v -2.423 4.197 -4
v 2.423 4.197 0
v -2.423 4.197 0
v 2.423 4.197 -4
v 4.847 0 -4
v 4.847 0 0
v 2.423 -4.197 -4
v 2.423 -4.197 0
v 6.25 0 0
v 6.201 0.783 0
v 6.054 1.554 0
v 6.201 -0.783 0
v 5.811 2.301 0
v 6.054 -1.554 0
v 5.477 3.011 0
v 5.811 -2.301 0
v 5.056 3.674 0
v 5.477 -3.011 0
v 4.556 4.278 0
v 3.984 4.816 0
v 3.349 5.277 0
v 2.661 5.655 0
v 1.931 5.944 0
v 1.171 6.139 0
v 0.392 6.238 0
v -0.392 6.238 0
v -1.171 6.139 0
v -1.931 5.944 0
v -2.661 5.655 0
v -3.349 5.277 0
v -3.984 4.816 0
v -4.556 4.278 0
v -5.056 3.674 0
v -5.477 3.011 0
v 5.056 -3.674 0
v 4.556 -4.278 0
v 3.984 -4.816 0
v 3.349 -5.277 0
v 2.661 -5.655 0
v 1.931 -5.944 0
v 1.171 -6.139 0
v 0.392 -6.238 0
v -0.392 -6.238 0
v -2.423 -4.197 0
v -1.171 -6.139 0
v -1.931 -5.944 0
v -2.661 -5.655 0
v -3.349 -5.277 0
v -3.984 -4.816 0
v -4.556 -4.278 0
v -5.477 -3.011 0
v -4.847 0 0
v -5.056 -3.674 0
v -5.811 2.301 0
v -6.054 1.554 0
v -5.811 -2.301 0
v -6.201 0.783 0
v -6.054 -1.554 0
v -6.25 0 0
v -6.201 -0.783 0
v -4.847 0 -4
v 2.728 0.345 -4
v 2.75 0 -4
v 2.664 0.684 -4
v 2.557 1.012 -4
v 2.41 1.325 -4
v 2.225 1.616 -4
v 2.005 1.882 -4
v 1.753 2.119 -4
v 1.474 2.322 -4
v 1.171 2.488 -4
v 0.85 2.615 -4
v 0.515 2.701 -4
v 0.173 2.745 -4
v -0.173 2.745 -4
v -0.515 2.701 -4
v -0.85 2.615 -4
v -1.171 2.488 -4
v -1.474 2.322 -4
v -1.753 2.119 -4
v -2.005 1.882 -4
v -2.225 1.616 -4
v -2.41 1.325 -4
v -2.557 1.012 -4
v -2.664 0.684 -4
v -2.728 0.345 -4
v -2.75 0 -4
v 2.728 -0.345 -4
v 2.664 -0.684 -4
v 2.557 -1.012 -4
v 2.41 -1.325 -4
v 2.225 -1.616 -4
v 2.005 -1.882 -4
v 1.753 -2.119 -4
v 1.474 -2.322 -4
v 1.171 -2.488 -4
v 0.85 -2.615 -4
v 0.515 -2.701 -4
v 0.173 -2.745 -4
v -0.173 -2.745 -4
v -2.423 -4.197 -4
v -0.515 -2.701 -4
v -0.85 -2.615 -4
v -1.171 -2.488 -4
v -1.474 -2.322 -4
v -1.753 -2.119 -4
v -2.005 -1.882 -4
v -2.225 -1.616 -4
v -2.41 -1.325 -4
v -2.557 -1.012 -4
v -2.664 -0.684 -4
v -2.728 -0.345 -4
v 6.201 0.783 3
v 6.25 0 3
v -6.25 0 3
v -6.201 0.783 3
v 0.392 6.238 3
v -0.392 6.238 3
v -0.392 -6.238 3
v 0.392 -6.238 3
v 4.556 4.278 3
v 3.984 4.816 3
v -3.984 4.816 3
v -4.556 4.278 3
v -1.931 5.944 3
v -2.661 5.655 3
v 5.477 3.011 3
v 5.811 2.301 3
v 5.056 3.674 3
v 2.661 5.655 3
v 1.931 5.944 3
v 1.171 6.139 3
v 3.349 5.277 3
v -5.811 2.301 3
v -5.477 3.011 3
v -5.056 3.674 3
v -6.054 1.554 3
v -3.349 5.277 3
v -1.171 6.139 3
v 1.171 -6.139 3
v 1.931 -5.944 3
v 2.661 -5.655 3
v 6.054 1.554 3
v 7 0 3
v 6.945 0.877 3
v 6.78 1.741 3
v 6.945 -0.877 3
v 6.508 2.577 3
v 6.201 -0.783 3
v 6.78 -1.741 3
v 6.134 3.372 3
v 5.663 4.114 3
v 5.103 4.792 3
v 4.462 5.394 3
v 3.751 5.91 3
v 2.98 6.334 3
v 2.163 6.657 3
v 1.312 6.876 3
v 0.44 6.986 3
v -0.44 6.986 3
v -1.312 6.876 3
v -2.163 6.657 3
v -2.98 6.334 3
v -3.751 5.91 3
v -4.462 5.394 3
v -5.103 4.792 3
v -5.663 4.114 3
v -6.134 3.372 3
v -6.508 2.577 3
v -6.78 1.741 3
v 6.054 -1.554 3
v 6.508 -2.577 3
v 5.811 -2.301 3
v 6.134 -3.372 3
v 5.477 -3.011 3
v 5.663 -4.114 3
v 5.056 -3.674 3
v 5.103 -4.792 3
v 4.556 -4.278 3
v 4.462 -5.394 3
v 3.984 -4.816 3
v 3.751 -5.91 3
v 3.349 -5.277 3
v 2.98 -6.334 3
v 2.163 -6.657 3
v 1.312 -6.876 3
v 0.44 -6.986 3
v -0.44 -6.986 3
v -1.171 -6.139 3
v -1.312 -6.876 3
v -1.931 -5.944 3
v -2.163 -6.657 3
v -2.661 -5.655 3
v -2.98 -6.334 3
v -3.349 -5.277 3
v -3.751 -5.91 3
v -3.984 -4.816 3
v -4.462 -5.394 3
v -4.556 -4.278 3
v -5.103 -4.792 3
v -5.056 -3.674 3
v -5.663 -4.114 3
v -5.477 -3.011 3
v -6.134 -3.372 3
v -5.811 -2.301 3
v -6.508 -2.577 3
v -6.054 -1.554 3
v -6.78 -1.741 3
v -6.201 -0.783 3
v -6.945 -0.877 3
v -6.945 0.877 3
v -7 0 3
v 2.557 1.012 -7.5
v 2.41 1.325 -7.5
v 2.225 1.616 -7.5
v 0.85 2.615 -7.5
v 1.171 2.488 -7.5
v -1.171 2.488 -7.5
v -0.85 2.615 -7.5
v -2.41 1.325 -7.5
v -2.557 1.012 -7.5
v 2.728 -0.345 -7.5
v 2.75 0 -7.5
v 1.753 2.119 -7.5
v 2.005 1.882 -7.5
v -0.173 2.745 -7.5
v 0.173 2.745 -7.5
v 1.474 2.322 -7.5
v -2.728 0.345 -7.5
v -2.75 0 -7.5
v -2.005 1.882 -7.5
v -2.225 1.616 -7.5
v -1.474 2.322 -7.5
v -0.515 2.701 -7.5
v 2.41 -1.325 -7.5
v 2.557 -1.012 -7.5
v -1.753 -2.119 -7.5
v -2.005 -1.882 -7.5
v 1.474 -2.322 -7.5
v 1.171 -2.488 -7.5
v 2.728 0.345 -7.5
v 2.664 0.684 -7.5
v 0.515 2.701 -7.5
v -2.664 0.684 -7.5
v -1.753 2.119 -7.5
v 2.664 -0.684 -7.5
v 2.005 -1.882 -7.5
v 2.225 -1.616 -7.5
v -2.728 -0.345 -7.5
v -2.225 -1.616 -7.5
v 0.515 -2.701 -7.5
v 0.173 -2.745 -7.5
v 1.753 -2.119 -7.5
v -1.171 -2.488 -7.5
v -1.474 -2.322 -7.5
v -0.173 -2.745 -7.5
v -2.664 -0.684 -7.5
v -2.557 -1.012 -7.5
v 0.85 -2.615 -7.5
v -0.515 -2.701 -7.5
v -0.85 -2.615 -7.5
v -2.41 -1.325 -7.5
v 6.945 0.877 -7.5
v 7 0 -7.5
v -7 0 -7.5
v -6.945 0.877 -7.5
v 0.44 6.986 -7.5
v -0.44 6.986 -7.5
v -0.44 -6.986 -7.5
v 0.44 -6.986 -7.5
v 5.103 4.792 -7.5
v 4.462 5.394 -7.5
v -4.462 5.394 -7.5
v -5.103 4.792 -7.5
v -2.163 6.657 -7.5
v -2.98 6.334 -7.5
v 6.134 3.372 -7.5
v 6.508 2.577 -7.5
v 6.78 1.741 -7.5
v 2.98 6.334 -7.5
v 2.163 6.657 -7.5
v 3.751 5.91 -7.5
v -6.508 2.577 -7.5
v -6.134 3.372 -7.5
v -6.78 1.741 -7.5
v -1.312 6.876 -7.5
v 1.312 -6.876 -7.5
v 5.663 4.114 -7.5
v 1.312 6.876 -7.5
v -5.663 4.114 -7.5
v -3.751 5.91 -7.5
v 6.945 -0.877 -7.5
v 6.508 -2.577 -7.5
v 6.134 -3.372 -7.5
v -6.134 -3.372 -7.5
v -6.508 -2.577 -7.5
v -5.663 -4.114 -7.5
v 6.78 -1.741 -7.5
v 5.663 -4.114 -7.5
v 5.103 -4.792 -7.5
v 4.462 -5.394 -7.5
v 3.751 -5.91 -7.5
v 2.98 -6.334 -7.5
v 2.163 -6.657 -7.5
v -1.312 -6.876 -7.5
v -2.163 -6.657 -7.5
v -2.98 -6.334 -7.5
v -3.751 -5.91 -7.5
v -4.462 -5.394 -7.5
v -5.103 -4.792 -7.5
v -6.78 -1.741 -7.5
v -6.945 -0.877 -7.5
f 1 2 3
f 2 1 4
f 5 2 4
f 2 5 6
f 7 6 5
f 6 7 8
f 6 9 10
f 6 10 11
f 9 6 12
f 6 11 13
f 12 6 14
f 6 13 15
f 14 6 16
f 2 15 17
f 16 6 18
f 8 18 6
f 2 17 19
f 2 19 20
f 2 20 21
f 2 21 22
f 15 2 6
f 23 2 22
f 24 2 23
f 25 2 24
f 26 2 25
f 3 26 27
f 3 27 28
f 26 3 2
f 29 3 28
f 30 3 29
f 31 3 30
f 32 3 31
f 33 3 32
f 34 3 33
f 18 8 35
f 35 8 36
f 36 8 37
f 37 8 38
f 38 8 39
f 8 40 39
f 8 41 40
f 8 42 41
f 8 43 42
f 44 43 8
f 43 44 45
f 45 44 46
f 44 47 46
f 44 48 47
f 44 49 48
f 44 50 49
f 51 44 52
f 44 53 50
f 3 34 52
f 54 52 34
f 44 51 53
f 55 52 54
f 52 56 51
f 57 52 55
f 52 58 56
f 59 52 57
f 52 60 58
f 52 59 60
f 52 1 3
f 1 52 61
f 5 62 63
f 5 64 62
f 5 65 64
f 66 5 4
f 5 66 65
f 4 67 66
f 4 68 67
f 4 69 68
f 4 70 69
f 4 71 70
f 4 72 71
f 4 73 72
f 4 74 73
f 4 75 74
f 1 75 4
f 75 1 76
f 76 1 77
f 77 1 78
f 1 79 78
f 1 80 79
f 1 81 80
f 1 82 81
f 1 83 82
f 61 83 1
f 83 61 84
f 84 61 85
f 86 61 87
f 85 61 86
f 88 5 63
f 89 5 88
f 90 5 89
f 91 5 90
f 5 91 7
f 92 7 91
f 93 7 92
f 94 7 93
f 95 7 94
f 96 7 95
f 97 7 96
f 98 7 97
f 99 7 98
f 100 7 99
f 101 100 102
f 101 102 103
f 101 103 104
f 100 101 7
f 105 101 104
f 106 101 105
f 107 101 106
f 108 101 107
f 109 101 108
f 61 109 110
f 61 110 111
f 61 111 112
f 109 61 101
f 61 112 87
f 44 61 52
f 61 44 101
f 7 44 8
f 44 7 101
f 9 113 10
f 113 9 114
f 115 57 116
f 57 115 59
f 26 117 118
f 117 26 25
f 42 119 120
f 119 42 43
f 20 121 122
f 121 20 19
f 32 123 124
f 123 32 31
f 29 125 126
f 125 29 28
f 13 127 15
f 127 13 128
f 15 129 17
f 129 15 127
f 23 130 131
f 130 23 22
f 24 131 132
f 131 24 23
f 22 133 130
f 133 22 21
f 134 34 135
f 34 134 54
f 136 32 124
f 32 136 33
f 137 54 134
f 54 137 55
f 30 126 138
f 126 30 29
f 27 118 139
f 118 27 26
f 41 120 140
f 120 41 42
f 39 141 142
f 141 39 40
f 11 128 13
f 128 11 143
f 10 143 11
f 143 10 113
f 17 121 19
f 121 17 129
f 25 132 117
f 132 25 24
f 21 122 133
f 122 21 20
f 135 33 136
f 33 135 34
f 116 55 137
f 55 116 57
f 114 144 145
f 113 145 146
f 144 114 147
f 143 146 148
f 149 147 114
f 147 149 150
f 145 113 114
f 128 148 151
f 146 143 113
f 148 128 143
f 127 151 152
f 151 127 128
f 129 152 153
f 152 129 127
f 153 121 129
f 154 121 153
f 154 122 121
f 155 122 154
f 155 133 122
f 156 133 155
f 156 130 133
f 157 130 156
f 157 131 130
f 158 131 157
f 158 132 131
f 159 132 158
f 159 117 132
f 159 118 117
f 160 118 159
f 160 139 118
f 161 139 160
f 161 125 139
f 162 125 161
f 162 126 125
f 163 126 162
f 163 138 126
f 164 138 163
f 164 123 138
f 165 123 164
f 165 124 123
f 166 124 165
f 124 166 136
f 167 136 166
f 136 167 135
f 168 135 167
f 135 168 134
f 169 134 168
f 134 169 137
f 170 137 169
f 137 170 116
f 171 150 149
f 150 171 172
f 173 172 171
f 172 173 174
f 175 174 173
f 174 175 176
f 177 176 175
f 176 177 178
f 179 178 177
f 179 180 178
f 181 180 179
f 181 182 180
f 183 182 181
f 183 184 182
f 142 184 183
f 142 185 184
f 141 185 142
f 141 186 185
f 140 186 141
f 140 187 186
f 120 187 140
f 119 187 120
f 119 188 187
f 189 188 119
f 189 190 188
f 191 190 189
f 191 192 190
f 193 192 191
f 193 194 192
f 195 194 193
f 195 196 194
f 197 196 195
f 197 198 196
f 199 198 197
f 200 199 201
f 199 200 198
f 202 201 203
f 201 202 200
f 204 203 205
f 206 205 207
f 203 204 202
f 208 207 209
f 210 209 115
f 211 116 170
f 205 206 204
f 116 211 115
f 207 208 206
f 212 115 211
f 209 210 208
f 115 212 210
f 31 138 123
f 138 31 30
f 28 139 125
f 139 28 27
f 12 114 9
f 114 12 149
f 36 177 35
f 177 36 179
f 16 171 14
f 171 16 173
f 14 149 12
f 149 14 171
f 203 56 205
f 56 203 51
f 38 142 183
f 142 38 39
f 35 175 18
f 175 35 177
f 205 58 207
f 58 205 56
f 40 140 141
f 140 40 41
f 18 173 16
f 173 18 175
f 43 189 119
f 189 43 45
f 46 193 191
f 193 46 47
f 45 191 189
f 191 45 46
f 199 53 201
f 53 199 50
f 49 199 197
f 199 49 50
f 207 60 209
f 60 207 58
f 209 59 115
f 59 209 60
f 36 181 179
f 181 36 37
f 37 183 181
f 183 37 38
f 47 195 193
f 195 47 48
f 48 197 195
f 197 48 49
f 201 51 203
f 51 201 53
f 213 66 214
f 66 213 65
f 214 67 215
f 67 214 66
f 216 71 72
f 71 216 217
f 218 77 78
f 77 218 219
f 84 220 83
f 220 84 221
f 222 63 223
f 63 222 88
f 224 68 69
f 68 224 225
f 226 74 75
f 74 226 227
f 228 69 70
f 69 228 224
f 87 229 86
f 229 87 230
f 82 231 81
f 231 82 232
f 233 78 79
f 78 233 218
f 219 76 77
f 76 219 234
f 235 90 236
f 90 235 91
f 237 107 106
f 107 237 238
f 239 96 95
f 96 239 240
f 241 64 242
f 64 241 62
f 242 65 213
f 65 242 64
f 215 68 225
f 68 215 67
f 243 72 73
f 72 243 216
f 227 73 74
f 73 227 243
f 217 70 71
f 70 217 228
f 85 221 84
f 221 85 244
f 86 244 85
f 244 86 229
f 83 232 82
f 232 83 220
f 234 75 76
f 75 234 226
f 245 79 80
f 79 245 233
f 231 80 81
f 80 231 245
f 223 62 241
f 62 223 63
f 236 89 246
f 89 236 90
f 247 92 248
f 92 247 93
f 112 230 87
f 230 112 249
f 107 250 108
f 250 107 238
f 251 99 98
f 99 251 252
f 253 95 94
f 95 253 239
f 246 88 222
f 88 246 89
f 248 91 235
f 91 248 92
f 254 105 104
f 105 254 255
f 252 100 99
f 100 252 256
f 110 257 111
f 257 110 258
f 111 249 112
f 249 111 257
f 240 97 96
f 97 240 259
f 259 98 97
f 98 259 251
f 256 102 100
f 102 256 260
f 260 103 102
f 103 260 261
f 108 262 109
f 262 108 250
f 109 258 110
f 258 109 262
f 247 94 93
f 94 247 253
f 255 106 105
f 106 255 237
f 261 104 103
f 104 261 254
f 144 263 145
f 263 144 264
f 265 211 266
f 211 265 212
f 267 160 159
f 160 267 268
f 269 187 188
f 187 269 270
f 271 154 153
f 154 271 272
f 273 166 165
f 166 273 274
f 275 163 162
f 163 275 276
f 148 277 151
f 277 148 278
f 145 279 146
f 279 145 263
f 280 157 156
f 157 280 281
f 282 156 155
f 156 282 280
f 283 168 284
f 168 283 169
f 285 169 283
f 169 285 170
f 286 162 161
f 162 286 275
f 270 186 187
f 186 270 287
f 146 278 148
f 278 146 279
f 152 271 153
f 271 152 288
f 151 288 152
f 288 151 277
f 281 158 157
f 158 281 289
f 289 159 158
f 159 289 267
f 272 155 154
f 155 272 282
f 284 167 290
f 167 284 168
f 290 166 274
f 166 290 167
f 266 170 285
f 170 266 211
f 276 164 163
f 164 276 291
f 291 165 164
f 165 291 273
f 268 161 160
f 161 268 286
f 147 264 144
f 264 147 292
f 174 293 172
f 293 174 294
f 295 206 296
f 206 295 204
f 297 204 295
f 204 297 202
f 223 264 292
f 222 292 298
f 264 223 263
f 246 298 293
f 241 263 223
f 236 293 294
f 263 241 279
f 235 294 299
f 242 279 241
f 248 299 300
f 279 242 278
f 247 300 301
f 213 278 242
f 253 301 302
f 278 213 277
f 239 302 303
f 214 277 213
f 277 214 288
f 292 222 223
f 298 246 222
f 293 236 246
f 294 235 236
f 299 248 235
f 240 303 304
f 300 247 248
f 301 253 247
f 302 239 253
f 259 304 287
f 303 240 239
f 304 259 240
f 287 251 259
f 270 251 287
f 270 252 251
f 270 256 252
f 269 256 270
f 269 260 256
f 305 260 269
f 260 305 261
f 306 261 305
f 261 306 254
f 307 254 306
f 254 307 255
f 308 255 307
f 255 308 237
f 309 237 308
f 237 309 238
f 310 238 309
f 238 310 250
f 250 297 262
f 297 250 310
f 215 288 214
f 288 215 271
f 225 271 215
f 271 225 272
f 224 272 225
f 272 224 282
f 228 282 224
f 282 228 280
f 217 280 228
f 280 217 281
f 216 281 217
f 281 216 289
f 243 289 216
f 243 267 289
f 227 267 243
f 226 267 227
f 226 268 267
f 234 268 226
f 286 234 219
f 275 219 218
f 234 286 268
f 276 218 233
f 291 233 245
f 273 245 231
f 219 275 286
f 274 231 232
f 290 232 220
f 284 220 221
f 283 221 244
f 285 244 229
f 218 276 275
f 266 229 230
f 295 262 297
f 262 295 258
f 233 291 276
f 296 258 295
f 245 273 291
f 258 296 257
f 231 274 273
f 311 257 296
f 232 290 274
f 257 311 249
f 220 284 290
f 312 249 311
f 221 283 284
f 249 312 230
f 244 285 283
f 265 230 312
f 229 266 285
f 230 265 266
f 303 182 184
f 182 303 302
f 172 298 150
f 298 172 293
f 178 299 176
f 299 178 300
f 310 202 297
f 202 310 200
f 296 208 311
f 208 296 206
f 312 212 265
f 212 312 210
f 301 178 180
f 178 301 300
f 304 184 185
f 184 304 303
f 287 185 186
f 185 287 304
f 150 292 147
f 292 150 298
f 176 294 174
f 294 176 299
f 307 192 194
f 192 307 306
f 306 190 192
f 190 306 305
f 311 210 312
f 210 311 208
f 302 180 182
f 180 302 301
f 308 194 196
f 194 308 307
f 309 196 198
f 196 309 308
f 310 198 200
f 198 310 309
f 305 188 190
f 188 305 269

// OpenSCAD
$fn = 50;


difference() {
	union() {
		translate(v = [0, 0, -7.5000000000]) {
			cylinder(h = 10.5000000000, r = 7.0000000000);
		}
	}
	union() {
		translate(v = [0, 0, 0]) {
			rotate(a = [0, 0, 0]) {
				difference() {
					union() {
						translate(v = [0, 0, -4]) {
							linear_extrude(height = 4) {
								polygon(points = [[4.8468000000, 0.0000000000], [2.4234000000, 4.1974519271], [-2.4234000000, 4.1974519271], [-4.8468000000, 0.0000000000], [-2.4234000000, -4.1974519271], [2.4234000000, -4.1974519271]]);
							}
						}
					}
					union();
				}
			}
		}
		#cylinder(h = 3, r = 6.2500000000);
		#translate(v = [0, 0, -100.0000000000]) {
			cylinder(h = 200, r = 2.7500000000);
		}
	}
}
